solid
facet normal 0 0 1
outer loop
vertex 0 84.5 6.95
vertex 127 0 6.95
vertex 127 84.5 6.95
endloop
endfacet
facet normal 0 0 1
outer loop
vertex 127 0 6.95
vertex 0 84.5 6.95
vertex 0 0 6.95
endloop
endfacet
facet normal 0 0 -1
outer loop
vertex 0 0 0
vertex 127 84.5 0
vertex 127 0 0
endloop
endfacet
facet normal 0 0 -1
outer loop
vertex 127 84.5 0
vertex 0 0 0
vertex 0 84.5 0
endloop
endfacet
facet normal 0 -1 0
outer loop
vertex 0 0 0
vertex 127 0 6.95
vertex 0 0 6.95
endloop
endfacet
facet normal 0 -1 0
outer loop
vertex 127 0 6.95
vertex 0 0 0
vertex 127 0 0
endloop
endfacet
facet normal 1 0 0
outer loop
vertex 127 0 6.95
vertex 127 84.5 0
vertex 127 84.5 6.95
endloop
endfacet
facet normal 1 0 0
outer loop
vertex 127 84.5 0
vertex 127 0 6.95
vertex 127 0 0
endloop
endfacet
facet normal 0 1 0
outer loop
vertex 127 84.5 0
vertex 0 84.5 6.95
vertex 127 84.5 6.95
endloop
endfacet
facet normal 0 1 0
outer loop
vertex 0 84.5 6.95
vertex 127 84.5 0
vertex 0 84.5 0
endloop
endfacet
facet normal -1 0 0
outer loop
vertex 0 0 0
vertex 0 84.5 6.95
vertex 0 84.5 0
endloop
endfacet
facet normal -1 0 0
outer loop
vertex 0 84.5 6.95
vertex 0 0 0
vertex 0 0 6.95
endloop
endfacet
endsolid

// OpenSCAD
// ibidi 96 Square Well Flat Bottom Plate 300 µL Lid
// loadName: ibidi_96_square_well_plate_300ul_lid
// Auto-generated by labware_to_stl.py from Opentrons V2 labware definition

$fn = 32;

difference() {
    // ── Labware body ──────────────────────────────────────────────
    cube([127.0000, 84.5000, 6.9500]);

    // ── Well cutouts ──────────────────────────────────────────────
}
